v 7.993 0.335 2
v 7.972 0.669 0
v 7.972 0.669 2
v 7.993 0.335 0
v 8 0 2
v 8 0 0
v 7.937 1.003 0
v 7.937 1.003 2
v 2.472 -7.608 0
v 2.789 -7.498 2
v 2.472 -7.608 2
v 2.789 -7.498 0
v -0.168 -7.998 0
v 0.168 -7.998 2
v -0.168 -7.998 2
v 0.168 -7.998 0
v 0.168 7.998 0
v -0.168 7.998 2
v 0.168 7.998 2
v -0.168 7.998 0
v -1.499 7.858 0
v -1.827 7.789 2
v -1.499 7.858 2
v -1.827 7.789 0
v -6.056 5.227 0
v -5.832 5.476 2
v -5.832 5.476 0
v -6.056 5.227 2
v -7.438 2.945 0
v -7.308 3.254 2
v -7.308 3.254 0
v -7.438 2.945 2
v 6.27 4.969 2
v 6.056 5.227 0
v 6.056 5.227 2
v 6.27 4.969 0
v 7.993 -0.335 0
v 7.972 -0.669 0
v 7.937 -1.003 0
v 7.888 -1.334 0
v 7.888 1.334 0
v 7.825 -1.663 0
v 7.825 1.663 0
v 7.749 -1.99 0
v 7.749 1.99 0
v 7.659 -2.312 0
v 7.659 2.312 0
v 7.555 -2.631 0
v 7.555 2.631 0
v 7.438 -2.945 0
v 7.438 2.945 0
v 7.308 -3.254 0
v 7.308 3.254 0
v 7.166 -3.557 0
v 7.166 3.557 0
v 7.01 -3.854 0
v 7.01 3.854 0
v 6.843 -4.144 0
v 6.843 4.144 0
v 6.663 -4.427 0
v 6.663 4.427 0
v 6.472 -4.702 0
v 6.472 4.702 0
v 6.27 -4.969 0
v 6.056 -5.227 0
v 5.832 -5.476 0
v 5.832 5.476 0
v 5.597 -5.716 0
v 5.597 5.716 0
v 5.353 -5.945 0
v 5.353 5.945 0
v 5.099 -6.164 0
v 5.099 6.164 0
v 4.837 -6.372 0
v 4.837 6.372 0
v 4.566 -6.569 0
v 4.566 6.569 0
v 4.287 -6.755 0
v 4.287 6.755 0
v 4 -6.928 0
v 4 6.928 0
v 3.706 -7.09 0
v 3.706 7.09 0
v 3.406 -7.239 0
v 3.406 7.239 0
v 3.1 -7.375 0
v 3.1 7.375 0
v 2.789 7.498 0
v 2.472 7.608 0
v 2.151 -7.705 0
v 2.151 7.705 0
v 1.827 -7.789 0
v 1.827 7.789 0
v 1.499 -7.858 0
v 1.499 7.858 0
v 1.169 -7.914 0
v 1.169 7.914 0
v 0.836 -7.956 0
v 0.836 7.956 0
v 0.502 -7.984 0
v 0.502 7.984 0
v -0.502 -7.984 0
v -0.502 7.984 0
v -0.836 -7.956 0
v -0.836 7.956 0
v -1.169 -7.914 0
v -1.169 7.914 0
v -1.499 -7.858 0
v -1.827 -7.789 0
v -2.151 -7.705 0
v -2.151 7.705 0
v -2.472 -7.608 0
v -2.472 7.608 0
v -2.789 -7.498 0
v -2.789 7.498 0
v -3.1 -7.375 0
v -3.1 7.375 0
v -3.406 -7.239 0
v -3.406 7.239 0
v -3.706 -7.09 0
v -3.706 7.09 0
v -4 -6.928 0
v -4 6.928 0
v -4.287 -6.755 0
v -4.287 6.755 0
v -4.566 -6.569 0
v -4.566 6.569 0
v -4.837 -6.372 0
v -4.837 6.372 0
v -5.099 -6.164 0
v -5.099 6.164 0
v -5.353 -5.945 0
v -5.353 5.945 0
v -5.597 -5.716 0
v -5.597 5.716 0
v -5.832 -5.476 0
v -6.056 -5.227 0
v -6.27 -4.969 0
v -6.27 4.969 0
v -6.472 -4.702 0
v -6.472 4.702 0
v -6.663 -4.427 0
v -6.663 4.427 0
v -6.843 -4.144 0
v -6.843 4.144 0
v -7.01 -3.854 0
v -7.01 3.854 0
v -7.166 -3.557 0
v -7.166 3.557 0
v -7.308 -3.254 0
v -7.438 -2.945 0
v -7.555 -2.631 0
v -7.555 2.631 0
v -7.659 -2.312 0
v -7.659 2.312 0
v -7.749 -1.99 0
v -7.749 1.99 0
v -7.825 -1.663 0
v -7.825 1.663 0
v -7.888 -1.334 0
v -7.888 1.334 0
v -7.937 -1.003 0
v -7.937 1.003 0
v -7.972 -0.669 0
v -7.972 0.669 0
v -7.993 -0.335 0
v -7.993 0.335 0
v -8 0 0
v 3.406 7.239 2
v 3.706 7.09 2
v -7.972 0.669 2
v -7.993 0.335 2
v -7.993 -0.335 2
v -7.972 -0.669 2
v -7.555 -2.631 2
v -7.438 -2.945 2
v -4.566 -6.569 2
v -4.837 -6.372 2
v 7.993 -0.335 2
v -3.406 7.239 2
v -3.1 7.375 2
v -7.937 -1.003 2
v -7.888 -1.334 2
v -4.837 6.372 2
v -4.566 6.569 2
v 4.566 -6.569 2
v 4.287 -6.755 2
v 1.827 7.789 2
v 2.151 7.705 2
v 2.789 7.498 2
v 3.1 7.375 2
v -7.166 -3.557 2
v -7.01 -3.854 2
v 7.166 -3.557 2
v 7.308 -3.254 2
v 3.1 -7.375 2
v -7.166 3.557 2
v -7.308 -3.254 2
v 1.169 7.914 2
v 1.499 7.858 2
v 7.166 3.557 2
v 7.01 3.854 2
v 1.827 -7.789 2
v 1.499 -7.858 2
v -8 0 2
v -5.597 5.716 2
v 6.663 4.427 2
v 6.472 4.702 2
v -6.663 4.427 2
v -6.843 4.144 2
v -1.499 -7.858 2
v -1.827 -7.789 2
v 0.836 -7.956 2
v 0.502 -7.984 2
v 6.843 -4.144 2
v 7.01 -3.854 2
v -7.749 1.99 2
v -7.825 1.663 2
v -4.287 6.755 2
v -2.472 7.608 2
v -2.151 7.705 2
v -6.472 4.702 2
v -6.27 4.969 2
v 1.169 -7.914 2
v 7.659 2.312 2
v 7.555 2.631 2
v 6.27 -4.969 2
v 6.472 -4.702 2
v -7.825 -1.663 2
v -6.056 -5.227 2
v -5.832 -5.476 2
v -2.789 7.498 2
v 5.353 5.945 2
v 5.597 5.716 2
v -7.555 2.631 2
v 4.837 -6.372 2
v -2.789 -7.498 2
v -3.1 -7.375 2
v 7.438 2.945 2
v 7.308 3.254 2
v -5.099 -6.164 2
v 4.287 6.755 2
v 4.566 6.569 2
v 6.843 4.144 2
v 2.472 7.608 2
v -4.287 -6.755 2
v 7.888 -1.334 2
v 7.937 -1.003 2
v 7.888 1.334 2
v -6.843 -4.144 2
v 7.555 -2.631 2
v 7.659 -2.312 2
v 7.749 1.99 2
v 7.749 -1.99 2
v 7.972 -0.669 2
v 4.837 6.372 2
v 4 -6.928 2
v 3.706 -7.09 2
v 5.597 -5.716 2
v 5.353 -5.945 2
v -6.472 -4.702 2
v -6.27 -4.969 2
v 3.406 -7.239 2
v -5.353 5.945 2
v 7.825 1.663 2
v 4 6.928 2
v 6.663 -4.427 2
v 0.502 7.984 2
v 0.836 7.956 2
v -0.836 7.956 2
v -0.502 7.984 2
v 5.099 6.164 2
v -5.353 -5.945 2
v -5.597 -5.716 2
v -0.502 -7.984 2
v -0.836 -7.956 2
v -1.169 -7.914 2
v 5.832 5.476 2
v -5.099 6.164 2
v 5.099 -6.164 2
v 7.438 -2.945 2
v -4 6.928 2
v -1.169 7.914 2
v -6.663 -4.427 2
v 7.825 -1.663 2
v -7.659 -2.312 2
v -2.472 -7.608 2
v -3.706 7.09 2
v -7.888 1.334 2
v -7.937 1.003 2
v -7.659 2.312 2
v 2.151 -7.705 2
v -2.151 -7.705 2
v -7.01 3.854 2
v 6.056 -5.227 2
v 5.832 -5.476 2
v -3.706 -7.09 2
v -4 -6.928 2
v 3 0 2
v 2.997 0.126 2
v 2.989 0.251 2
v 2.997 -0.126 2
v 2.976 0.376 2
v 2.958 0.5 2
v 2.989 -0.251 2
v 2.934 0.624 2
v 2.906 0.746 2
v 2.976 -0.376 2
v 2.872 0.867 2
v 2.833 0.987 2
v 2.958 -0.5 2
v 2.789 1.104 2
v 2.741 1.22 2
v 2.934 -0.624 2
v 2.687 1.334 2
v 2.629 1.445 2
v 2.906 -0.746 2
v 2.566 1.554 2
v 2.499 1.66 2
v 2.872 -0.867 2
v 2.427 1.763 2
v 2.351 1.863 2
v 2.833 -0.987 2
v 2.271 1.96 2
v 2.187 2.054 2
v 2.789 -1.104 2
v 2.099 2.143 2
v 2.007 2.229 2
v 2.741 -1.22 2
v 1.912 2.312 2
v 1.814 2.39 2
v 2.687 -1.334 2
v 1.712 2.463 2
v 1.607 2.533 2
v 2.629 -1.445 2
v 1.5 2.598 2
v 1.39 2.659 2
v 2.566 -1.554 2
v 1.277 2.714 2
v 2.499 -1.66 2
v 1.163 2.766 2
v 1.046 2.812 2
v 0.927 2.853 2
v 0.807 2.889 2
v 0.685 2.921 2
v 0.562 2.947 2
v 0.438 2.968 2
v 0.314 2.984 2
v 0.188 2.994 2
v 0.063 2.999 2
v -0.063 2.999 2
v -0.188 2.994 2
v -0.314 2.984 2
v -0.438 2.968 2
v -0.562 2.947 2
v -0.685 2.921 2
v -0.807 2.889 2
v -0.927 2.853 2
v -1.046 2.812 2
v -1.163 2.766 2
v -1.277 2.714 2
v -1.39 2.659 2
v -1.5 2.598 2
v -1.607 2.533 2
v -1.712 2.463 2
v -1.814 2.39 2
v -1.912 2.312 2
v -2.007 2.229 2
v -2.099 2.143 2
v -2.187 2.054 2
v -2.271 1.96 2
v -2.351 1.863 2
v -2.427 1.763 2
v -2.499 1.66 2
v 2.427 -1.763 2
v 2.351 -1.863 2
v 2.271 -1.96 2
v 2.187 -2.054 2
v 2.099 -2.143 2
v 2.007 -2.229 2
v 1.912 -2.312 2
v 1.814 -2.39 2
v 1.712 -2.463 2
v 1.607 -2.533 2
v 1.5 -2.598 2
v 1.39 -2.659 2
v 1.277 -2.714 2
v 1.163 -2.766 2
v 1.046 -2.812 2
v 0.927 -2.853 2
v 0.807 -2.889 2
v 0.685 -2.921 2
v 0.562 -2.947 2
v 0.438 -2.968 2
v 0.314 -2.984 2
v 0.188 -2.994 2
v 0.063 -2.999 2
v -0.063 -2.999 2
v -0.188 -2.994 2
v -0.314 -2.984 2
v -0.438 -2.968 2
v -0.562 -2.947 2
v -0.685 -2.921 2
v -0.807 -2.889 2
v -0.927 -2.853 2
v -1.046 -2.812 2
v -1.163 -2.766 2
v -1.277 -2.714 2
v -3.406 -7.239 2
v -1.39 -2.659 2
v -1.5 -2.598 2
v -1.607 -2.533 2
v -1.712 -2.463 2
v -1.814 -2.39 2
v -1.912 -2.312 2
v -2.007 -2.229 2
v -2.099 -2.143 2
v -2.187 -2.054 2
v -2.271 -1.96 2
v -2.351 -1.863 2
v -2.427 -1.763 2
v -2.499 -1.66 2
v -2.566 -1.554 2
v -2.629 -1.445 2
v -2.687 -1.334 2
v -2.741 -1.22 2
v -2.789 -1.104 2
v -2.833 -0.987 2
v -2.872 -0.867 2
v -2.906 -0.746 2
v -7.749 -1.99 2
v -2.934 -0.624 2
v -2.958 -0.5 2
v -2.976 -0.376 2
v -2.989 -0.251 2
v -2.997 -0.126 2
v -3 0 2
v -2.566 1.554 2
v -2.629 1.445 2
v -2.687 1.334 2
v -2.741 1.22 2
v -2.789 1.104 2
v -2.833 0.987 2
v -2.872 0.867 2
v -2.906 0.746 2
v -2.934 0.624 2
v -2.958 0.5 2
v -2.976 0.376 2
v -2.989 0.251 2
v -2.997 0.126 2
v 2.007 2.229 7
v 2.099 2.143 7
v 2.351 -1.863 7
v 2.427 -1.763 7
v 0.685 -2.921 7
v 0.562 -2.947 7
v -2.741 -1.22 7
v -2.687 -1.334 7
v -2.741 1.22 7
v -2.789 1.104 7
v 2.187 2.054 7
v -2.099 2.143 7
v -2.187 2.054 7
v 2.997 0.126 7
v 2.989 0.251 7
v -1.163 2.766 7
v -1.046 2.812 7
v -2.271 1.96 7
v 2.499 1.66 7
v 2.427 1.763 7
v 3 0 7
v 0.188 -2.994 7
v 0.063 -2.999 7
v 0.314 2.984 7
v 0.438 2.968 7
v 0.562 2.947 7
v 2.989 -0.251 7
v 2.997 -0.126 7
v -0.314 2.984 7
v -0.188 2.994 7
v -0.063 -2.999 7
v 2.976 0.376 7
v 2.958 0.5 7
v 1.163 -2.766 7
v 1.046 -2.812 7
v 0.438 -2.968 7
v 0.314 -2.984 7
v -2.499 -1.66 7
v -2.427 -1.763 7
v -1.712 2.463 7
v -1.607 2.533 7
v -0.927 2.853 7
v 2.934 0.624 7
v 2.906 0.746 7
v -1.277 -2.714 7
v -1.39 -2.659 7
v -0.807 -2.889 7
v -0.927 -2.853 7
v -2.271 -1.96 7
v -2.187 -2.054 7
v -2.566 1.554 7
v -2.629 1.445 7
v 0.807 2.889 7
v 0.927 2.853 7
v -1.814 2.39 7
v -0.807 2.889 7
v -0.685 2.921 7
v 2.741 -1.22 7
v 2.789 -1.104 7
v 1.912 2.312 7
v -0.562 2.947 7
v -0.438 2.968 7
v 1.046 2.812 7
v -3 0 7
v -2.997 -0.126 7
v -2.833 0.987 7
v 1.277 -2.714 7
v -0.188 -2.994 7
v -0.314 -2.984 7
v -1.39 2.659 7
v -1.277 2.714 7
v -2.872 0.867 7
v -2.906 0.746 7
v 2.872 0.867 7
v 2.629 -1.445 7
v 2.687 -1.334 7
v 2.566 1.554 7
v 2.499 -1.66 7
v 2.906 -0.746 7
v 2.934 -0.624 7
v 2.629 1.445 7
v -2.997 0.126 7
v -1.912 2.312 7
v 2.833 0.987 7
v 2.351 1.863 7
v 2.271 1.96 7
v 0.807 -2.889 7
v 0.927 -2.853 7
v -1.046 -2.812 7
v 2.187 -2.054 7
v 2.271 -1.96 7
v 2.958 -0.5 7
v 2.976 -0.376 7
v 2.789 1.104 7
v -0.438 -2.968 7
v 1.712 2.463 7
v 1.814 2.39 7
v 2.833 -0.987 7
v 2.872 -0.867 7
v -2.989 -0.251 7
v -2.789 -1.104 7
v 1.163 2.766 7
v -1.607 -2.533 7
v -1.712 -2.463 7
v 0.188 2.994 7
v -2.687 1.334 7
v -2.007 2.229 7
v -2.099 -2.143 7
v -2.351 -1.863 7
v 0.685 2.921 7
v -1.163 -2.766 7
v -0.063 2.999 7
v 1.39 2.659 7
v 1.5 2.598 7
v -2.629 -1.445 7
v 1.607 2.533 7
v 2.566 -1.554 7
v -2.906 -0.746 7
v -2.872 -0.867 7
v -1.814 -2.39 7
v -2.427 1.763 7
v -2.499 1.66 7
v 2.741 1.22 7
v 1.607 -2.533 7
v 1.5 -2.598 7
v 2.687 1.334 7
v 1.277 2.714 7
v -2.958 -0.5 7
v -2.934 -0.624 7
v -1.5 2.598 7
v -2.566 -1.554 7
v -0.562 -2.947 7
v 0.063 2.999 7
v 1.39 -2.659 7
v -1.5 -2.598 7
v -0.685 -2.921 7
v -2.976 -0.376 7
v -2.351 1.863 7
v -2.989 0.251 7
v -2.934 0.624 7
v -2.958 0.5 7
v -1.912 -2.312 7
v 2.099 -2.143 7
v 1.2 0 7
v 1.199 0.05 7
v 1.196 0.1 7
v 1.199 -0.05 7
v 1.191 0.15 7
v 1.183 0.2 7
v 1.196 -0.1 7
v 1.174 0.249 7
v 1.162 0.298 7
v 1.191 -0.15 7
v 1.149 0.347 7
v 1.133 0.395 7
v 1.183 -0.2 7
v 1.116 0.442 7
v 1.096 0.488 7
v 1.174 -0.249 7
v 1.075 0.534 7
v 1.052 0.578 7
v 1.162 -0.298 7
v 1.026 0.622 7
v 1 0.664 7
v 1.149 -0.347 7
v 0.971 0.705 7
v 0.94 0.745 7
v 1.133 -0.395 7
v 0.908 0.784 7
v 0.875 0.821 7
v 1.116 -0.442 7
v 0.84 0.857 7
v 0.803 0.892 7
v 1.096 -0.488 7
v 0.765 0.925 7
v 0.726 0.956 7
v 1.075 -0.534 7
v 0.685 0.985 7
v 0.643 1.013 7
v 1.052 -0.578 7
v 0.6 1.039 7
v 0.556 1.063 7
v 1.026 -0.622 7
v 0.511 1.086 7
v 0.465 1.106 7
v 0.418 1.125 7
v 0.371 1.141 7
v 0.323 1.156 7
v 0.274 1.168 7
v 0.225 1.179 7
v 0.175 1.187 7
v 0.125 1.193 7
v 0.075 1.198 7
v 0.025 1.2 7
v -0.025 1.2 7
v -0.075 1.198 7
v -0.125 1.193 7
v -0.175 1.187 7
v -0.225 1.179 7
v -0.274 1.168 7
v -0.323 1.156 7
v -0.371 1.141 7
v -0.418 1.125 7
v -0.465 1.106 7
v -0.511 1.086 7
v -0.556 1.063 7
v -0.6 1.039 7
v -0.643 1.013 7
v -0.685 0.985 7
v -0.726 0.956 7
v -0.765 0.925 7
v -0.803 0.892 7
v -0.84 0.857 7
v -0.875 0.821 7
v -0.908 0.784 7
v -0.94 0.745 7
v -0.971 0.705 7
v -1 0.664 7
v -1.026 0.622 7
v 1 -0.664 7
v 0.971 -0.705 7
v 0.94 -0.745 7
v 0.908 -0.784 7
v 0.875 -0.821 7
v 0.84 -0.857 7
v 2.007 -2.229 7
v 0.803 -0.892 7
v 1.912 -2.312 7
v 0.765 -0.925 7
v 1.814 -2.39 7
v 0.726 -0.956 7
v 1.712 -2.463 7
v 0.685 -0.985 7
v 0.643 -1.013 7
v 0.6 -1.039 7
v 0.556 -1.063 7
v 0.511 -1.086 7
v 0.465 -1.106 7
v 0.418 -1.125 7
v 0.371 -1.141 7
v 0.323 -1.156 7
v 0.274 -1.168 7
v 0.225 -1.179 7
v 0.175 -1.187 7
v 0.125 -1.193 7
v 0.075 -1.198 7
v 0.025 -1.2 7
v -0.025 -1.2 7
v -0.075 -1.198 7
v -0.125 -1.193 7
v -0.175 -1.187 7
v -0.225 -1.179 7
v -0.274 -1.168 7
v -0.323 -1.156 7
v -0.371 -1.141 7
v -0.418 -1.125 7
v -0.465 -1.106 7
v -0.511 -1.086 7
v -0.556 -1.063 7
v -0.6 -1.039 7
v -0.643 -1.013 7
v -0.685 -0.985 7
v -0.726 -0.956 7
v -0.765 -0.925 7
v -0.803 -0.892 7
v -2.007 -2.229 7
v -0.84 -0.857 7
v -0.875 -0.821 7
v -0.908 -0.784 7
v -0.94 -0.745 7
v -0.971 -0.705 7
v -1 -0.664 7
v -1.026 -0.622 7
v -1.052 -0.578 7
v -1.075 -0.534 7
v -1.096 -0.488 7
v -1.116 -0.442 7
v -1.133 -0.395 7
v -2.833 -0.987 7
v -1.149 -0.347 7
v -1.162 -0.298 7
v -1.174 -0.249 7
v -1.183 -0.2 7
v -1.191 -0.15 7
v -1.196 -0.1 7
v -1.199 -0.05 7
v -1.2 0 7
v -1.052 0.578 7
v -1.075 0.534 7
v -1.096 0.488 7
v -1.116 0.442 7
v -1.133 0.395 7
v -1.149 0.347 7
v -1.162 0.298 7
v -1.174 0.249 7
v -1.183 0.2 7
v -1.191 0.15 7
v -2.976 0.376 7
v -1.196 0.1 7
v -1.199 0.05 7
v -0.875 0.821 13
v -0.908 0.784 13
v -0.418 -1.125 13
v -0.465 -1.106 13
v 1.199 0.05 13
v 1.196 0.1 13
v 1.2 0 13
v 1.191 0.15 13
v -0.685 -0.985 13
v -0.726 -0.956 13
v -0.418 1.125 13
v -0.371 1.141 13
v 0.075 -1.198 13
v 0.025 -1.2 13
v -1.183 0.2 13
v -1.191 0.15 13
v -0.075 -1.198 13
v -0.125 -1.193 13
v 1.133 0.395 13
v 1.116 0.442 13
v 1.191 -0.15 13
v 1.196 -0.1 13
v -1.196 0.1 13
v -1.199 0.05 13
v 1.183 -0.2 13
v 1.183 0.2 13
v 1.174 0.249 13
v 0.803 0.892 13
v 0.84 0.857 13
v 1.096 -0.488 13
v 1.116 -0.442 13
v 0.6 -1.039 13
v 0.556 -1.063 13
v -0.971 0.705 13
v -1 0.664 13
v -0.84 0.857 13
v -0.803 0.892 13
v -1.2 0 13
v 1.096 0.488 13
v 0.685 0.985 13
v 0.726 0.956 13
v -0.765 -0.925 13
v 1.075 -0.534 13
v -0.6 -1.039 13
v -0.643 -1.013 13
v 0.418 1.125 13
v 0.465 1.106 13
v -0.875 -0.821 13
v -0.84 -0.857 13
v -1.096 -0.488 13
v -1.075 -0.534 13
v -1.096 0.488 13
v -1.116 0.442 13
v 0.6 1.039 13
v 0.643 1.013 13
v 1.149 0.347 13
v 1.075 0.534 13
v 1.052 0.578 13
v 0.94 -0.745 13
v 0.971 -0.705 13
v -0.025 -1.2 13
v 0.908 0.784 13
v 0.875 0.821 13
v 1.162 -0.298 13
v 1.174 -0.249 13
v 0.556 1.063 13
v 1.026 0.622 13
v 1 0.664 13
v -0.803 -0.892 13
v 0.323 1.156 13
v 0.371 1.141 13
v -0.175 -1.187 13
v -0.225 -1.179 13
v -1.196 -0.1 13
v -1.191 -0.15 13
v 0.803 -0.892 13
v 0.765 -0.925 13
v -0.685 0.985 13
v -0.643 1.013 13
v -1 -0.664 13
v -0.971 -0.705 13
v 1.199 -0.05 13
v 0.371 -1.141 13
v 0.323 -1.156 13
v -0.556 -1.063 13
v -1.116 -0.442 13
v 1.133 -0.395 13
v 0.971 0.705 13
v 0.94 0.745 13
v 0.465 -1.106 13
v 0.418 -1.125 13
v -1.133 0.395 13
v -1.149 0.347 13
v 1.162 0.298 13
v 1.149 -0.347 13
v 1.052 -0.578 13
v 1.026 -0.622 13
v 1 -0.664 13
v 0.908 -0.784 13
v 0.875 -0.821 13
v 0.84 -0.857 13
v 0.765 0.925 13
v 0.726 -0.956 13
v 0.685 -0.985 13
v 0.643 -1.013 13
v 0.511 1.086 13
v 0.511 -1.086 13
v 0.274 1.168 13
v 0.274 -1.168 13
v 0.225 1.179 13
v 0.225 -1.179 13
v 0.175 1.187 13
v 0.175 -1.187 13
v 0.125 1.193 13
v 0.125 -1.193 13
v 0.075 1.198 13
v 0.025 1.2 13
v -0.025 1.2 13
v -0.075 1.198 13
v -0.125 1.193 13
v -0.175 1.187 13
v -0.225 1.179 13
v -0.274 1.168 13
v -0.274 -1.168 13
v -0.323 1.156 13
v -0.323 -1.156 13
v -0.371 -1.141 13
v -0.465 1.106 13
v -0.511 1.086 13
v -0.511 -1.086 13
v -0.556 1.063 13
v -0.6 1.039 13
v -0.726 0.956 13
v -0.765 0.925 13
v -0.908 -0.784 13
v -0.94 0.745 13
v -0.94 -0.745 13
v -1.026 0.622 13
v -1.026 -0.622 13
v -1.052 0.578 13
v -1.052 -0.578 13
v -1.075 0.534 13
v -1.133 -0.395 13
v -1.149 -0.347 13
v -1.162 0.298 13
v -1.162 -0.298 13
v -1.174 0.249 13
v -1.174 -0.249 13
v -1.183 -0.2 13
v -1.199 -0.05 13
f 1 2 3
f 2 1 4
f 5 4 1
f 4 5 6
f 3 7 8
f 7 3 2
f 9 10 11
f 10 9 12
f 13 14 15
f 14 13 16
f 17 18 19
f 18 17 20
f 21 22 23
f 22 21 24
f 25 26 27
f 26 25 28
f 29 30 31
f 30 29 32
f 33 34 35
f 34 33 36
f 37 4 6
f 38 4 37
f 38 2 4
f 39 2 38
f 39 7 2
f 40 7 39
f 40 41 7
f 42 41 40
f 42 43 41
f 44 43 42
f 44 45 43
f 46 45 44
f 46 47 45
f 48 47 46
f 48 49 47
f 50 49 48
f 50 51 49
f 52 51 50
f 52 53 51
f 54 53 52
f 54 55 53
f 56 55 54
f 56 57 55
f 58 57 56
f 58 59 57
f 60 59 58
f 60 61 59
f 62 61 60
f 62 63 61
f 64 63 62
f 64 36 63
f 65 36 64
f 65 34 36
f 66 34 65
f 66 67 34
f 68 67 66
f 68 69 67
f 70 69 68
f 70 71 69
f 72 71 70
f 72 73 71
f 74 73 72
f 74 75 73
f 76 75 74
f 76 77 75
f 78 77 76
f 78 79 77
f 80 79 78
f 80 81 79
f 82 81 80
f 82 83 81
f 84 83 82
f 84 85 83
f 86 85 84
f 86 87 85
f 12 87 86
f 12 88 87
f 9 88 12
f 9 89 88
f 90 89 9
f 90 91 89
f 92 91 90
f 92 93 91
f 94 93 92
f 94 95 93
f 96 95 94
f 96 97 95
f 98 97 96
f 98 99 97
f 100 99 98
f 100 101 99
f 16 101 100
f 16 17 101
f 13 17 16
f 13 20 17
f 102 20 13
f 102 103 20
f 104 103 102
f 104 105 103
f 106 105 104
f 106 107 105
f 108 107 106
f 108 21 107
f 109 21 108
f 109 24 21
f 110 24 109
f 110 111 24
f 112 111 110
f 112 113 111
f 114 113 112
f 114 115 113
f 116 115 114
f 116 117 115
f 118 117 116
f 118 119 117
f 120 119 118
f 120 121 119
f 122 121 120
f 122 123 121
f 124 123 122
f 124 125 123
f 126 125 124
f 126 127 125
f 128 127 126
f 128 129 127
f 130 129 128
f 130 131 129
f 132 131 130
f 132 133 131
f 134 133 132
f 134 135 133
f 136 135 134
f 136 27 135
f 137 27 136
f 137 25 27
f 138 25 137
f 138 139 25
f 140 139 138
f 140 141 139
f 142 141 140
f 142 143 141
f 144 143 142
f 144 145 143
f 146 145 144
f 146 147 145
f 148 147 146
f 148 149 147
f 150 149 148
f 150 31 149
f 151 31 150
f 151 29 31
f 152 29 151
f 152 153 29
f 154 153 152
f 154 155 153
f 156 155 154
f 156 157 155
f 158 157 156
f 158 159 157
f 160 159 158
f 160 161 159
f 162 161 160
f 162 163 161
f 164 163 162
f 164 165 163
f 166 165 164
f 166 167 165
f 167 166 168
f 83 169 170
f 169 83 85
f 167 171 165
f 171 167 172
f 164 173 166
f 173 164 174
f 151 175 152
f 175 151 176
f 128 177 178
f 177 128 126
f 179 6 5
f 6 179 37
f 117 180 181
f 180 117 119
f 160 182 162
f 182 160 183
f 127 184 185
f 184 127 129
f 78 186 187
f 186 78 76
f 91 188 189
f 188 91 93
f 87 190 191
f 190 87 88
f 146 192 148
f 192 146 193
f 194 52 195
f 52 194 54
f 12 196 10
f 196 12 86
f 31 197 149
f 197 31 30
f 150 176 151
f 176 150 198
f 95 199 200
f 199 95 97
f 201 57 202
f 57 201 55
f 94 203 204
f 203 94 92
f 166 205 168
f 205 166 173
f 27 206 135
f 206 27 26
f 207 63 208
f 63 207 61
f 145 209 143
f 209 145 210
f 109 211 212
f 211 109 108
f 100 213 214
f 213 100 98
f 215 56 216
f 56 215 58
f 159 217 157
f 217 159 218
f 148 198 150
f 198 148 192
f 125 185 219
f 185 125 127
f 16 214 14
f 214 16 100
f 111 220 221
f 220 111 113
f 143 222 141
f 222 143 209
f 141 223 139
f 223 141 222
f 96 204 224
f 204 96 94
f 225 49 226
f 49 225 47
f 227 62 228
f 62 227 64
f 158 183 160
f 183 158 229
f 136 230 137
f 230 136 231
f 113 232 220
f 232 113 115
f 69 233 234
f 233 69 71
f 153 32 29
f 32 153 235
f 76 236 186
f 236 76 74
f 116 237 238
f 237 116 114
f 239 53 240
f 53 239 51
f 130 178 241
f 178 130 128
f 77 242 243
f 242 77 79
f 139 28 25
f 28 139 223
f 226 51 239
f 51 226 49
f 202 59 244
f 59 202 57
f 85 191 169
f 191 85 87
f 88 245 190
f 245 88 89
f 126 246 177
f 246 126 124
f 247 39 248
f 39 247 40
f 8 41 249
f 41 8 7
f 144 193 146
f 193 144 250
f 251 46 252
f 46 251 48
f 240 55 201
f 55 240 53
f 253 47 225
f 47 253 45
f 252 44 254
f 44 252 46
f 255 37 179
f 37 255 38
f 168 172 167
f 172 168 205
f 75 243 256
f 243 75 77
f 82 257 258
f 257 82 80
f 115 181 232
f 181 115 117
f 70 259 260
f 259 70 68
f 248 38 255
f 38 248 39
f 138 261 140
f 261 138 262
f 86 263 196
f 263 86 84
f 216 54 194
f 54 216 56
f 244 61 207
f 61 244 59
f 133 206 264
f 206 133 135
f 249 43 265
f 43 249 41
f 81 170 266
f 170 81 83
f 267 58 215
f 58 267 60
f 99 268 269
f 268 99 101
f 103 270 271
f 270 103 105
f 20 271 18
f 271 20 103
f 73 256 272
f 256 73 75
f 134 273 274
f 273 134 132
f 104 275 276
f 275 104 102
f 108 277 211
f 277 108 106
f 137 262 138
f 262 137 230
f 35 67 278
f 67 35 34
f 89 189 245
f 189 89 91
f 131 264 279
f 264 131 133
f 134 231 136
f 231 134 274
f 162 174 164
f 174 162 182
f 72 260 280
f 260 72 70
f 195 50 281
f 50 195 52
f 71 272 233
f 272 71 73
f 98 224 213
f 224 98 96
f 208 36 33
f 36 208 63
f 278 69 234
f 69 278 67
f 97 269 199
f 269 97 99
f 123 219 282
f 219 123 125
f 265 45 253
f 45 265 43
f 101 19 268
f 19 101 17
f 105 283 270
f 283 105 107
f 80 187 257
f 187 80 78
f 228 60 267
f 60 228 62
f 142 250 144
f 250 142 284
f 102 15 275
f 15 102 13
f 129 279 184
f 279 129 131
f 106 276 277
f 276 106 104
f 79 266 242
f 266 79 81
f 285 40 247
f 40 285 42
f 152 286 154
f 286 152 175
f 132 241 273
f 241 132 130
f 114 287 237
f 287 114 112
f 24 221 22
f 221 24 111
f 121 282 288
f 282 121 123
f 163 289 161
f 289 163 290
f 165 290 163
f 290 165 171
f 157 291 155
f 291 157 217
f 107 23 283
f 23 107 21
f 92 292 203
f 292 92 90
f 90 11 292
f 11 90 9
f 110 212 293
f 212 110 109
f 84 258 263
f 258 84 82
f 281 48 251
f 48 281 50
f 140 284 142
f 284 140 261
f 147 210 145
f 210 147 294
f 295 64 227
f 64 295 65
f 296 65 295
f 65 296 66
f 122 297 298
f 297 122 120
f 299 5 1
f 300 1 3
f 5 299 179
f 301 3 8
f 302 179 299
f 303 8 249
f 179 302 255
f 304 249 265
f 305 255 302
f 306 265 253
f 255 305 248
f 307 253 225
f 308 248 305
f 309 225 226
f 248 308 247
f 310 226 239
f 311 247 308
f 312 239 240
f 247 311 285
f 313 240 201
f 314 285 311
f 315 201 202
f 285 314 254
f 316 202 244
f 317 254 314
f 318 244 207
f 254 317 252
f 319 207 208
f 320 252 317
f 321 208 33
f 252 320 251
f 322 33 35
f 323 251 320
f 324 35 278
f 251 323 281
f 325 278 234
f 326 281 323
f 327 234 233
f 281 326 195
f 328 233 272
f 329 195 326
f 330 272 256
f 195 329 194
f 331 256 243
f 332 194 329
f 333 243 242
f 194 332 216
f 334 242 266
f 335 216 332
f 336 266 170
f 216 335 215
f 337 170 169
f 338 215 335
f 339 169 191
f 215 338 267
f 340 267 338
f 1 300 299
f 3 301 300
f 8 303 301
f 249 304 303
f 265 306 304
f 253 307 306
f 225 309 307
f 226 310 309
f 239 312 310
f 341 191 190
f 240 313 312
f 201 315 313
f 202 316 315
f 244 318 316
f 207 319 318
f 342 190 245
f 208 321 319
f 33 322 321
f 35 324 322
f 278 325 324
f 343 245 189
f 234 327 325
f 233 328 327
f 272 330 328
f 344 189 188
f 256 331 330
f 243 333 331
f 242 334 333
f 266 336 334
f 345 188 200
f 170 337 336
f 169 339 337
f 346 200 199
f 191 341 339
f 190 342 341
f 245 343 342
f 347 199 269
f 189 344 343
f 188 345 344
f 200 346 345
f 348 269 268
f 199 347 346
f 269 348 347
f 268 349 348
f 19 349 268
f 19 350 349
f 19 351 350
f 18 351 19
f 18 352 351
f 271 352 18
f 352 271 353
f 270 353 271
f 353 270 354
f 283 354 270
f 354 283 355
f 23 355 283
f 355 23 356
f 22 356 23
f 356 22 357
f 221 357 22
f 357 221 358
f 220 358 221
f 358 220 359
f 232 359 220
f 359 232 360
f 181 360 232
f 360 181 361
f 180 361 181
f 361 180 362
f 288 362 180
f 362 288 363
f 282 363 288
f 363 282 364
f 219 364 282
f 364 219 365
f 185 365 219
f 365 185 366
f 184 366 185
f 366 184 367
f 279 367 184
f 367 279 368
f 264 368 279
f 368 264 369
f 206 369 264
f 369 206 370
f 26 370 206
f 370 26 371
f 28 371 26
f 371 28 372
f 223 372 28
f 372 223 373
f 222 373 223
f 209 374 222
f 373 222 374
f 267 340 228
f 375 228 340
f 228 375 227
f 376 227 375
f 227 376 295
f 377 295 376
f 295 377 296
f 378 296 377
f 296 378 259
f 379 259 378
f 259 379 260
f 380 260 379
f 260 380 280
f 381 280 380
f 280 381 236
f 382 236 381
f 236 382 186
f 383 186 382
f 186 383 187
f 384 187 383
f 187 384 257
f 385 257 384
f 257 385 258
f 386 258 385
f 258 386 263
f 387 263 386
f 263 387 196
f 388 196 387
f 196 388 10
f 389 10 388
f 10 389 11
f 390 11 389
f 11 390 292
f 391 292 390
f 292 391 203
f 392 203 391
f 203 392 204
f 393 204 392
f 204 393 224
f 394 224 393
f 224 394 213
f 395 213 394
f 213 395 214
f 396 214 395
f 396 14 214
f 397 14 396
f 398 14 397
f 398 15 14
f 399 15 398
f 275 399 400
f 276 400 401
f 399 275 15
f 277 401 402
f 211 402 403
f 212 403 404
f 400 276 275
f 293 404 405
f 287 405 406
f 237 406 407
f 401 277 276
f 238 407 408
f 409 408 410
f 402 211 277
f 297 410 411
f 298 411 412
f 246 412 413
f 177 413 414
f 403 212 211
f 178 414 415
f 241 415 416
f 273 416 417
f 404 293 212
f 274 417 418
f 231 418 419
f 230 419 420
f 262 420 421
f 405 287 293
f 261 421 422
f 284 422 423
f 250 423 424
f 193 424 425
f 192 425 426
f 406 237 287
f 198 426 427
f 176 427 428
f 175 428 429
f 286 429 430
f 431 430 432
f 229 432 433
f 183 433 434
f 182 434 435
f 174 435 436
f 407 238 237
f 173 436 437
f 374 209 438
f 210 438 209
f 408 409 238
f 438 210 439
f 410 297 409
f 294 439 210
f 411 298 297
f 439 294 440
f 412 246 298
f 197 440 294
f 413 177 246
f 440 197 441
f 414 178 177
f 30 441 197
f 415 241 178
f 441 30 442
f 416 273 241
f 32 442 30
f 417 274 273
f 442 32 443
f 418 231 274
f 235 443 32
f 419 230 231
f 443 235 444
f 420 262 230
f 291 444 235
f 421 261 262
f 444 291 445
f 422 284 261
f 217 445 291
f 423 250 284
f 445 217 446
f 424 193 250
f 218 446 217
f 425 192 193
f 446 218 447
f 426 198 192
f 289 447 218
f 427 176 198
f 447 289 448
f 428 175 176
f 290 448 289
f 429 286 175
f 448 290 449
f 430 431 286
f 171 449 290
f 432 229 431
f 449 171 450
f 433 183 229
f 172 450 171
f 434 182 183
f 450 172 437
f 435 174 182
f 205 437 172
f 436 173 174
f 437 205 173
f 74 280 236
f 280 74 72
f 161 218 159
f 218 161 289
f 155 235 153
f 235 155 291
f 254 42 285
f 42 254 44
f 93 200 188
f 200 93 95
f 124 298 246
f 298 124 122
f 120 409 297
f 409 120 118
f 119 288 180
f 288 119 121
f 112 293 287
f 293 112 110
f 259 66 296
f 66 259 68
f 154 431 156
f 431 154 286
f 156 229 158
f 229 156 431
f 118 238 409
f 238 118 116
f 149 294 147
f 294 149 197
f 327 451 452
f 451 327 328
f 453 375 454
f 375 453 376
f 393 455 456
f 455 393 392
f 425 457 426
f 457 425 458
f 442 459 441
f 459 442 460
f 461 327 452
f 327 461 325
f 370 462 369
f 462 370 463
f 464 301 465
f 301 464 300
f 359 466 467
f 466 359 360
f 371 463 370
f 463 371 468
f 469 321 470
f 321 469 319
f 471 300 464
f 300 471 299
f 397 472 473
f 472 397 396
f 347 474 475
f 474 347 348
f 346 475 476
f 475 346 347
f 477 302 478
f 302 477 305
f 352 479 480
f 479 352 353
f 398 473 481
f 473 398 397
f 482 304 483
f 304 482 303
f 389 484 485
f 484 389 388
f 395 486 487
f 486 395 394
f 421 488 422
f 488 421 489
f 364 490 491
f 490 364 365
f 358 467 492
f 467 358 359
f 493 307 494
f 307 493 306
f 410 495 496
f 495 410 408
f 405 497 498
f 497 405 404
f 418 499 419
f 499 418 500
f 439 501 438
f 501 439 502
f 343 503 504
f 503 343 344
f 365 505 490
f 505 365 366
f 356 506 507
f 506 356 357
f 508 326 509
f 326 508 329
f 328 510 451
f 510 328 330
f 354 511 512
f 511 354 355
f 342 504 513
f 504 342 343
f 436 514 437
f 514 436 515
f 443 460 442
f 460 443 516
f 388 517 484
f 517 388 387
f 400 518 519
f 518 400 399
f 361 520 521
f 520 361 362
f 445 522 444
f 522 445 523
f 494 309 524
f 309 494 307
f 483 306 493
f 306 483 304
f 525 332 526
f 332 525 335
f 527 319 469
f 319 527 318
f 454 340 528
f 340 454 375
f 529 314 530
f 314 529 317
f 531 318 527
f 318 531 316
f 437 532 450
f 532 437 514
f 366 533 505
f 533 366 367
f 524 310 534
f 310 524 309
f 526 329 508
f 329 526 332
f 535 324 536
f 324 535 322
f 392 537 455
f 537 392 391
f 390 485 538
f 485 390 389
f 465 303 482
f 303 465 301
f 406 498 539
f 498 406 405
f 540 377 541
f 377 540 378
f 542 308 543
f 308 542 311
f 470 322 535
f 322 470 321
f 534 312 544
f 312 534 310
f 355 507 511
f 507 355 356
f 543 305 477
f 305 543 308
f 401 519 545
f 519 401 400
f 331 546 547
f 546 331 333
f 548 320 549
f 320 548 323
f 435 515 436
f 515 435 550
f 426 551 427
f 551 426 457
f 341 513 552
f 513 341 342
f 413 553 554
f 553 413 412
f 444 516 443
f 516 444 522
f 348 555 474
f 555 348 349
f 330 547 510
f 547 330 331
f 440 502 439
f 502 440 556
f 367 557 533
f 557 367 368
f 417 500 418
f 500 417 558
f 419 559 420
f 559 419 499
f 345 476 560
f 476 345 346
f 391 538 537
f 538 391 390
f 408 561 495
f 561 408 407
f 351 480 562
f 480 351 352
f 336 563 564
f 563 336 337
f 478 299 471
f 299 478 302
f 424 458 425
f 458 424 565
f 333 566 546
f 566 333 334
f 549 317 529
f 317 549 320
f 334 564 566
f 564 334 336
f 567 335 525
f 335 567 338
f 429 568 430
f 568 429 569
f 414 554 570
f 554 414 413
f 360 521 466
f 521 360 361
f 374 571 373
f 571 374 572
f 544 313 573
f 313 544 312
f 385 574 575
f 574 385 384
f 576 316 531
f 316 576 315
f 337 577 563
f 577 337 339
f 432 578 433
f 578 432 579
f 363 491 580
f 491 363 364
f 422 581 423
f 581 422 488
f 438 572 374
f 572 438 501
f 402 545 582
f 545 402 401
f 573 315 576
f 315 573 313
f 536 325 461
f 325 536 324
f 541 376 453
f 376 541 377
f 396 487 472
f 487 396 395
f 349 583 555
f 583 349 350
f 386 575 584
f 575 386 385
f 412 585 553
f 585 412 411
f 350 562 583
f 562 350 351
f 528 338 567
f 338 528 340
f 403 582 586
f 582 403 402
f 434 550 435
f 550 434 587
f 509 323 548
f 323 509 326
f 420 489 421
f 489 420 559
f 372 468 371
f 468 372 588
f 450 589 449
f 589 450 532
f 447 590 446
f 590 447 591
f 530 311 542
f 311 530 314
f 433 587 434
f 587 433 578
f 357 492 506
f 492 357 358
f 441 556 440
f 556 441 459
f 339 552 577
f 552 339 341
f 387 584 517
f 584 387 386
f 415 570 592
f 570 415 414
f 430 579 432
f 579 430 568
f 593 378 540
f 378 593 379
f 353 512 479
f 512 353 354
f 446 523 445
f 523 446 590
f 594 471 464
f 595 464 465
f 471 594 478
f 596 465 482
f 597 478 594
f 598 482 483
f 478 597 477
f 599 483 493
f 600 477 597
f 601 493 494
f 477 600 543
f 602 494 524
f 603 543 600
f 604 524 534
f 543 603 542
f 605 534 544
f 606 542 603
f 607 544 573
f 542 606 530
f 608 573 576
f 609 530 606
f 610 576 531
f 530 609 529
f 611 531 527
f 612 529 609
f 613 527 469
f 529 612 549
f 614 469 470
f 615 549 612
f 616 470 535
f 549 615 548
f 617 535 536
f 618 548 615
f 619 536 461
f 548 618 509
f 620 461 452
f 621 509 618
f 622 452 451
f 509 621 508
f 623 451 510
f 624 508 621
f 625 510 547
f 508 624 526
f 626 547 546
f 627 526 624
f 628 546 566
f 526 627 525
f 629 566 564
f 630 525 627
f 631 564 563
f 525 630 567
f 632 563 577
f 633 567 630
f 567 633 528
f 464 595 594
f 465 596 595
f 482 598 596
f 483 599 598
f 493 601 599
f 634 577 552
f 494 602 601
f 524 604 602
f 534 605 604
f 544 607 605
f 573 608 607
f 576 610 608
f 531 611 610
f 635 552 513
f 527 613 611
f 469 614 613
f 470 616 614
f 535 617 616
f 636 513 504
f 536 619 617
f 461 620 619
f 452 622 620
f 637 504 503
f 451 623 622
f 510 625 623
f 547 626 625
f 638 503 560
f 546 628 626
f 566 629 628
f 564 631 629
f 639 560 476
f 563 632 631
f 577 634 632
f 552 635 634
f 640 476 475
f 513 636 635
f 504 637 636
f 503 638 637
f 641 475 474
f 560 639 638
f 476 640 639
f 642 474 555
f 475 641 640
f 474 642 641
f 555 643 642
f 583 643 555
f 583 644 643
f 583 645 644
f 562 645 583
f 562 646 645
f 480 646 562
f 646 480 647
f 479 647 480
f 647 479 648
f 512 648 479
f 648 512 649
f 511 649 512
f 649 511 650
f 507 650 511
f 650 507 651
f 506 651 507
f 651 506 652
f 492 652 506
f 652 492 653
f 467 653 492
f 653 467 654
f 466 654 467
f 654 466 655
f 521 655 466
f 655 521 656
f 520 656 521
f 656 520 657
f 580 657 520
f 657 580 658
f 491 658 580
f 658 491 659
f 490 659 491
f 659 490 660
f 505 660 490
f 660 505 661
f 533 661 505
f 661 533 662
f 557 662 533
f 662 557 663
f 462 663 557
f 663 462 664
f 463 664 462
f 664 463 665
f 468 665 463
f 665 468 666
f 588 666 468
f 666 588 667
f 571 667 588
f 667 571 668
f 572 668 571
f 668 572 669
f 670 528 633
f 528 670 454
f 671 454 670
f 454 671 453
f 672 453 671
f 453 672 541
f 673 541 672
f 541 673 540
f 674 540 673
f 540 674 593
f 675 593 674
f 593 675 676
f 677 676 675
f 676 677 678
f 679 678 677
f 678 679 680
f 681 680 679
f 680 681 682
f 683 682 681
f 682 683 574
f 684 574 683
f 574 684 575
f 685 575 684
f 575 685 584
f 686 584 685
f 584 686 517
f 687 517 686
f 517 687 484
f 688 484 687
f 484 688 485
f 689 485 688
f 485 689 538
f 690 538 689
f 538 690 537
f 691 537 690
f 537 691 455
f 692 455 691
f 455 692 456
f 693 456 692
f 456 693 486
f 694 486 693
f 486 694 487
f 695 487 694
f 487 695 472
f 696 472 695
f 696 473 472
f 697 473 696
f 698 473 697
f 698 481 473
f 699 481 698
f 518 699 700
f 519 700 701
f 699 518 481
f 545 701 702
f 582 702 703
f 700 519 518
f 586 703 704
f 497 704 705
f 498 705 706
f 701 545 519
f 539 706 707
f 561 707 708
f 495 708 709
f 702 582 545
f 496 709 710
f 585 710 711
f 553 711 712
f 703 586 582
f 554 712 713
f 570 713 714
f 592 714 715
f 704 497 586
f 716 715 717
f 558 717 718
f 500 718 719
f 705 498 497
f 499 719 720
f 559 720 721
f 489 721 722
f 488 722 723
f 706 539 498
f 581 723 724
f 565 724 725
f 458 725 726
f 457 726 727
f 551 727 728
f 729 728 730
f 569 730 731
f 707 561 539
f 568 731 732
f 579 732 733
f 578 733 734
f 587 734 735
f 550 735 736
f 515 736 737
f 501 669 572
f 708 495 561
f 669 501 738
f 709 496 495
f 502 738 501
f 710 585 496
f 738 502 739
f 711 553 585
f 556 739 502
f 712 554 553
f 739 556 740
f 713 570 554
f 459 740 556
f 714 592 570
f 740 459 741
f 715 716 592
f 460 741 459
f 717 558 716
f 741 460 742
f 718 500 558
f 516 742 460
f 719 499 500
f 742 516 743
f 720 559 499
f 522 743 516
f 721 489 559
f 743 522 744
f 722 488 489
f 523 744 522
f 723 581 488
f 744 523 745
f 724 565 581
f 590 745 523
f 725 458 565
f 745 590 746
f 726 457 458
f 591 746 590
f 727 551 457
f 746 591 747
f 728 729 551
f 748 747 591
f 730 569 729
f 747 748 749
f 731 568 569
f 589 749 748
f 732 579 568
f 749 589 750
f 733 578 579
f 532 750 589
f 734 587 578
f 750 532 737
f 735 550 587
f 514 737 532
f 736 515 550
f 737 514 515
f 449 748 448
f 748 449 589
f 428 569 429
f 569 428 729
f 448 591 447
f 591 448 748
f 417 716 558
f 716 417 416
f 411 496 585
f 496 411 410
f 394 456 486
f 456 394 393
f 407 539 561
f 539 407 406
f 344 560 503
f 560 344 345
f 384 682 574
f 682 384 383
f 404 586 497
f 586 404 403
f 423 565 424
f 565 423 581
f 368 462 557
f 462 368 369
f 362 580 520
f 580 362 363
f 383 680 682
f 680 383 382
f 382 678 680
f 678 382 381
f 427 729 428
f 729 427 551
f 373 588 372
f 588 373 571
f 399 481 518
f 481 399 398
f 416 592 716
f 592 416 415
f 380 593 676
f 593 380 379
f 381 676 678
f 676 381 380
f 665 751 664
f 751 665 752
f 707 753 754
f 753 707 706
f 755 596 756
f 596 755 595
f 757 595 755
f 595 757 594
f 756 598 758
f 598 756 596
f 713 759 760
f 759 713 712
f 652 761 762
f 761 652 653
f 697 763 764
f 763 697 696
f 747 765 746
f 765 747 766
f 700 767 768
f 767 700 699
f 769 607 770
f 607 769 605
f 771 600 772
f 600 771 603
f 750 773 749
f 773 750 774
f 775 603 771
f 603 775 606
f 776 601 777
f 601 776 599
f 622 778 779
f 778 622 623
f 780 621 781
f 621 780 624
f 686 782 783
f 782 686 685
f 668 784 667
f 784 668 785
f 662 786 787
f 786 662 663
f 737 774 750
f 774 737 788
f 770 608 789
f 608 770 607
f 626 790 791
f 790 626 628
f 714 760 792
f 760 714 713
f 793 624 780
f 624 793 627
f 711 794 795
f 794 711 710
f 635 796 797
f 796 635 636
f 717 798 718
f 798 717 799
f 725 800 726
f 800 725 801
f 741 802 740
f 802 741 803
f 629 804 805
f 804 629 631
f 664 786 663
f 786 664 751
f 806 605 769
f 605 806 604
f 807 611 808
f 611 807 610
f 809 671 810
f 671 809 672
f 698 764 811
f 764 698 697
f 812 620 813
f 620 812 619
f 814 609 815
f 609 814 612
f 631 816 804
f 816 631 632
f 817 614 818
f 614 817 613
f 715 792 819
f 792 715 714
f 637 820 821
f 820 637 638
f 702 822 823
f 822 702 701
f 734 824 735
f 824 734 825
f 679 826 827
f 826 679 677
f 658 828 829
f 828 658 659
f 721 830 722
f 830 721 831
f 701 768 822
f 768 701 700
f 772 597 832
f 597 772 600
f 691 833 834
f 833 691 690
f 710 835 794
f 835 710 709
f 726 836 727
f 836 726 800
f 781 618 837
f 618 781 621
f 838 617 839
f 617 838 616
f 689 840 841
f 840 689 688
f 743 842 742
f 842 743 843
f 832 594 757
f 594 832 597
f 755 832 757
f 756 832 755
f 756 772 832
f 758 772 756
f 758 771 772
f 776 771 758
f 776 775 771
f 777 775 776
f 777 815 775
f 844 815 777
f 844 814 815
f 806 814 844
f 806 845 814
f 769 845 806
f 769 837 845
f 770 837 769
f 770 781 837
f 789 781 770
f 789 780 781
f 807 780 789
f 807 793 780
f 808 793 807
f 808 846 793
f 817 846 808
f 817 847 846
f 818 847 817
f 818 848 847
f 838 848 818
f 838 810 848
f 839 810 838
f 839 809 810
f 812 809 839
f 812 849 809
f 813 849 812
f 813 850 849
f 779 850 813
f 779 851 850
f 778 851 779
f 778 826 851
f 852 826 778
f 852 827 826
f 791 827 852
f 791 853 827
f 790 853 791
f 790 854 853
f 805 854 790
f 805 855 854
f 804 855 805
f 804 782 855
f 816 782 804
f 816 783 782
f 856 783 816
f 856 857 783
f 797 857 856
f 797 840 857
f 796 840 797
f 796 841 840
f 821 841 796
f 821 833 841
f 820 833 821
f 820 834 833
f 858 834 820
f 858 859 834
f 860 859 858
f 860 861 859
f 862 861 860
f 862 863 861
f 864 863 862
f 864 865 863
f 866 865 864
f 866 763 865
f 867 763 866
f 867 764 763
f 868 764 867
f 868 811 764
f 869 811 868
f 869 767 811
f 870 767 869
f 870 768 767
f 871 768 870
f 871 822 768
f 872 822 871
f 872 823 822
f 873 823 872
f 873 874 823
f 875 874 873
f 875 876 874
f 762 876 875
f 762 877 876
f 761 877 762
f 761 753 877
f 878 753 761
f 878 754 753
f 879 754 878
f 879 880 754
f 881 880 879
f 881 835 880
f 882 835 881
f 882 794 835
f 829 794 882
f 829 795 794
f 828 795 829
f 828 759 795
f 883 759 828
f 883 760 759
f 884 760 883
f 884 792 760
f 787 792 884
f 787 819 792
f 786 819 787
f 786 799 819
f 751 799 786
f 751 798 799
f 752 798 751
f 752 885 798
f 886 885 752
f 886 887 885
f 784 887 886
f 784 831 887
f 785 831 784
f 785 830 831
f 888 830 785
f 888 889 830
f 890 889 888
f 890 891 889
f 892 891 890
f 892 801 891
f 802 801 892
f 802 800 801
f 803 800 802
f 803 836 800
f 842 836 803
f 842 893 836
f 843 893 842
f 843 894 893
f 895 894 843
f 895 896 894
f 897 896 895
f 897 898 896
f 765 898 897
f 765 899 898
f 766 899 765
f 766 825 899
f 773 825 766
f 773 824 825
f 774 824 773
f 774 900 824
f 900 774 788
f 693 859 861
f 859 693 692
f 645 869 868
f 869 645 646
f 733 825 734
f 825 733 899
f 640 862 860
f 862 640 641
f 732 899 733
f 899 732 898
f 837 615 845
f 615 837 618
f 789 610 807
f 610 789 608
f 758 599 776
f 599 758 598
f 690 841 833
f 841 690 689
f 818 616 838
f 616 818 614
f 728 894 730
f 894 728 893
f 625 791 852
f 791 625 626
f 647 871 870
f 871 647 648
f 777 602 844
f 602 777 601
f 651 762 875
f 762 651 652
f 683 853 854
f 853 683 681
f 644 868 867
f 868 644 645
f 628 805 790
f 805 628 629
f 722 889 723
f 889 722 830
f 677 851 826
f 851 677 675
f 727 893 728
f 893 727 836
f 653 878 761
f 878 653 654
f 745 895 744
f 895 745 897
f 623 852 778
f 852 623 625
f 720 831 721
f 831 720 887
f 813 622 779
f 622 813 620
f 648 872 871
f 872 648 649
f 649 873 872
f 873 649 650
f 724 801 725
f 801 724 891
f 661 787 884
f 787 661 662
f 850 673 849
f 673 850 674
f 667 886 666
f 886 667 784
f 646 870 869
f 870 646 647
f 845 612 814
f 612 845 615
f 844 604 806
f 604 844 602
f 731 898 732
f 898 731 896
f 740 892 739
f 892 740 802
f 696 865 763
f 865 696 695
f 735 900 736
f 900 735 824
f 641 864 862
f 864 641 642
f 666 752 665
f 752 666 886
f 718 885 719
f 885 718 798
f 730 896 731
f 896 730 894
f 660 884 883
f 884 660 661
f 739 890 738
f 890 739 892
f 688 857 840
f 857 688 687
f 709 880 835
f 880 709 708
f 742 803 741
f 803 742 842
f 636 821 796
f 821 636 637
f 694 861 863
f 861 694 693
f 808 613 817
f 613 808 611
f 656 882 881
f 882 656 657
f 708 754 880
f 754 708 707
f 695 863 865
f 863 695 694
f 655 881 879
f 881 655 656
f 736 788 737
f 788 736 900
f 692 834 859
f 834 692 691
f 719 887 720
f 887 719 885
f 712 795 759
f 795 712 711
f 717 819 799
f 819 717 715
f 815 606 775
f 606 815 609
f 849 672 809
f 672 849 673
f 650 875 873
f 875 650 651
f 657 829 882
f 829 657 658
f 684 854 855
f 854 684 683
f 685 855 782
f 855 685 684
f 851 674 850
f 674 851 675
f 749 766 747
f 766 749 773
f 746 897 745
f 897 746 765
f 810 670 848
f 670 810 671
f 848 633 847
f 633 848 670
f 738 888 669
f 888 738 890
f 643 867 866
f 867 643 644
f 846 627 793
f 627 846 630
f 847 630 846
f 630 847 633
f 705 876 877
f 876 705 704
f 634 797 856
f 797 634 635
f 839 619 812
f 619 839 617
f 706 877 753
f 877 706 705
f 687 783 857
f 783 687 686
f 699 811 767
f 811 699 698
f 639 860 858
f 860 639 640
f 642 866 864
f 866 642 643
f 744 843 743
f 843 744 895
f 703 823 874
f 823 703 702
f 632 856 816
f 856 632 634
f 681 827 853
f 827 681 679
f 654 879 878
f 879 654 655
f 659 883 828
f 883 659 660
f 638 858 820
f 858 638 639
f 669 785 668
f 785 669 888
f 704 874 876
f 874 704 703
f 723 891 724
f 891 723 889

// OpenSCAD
//PCB 1 hole Stand Off

$fn = 150;

height = 7;
bigDia = 6;
smallDia = 2.4;
topHeight = 6;

//base for glue
baseDia = 16;
baseHeight = 2;

cylinder(baseHeight, d = baseDia);
cylinder(height, d = bigDia);
cylinder(height + topHeight, d = smallDia);
